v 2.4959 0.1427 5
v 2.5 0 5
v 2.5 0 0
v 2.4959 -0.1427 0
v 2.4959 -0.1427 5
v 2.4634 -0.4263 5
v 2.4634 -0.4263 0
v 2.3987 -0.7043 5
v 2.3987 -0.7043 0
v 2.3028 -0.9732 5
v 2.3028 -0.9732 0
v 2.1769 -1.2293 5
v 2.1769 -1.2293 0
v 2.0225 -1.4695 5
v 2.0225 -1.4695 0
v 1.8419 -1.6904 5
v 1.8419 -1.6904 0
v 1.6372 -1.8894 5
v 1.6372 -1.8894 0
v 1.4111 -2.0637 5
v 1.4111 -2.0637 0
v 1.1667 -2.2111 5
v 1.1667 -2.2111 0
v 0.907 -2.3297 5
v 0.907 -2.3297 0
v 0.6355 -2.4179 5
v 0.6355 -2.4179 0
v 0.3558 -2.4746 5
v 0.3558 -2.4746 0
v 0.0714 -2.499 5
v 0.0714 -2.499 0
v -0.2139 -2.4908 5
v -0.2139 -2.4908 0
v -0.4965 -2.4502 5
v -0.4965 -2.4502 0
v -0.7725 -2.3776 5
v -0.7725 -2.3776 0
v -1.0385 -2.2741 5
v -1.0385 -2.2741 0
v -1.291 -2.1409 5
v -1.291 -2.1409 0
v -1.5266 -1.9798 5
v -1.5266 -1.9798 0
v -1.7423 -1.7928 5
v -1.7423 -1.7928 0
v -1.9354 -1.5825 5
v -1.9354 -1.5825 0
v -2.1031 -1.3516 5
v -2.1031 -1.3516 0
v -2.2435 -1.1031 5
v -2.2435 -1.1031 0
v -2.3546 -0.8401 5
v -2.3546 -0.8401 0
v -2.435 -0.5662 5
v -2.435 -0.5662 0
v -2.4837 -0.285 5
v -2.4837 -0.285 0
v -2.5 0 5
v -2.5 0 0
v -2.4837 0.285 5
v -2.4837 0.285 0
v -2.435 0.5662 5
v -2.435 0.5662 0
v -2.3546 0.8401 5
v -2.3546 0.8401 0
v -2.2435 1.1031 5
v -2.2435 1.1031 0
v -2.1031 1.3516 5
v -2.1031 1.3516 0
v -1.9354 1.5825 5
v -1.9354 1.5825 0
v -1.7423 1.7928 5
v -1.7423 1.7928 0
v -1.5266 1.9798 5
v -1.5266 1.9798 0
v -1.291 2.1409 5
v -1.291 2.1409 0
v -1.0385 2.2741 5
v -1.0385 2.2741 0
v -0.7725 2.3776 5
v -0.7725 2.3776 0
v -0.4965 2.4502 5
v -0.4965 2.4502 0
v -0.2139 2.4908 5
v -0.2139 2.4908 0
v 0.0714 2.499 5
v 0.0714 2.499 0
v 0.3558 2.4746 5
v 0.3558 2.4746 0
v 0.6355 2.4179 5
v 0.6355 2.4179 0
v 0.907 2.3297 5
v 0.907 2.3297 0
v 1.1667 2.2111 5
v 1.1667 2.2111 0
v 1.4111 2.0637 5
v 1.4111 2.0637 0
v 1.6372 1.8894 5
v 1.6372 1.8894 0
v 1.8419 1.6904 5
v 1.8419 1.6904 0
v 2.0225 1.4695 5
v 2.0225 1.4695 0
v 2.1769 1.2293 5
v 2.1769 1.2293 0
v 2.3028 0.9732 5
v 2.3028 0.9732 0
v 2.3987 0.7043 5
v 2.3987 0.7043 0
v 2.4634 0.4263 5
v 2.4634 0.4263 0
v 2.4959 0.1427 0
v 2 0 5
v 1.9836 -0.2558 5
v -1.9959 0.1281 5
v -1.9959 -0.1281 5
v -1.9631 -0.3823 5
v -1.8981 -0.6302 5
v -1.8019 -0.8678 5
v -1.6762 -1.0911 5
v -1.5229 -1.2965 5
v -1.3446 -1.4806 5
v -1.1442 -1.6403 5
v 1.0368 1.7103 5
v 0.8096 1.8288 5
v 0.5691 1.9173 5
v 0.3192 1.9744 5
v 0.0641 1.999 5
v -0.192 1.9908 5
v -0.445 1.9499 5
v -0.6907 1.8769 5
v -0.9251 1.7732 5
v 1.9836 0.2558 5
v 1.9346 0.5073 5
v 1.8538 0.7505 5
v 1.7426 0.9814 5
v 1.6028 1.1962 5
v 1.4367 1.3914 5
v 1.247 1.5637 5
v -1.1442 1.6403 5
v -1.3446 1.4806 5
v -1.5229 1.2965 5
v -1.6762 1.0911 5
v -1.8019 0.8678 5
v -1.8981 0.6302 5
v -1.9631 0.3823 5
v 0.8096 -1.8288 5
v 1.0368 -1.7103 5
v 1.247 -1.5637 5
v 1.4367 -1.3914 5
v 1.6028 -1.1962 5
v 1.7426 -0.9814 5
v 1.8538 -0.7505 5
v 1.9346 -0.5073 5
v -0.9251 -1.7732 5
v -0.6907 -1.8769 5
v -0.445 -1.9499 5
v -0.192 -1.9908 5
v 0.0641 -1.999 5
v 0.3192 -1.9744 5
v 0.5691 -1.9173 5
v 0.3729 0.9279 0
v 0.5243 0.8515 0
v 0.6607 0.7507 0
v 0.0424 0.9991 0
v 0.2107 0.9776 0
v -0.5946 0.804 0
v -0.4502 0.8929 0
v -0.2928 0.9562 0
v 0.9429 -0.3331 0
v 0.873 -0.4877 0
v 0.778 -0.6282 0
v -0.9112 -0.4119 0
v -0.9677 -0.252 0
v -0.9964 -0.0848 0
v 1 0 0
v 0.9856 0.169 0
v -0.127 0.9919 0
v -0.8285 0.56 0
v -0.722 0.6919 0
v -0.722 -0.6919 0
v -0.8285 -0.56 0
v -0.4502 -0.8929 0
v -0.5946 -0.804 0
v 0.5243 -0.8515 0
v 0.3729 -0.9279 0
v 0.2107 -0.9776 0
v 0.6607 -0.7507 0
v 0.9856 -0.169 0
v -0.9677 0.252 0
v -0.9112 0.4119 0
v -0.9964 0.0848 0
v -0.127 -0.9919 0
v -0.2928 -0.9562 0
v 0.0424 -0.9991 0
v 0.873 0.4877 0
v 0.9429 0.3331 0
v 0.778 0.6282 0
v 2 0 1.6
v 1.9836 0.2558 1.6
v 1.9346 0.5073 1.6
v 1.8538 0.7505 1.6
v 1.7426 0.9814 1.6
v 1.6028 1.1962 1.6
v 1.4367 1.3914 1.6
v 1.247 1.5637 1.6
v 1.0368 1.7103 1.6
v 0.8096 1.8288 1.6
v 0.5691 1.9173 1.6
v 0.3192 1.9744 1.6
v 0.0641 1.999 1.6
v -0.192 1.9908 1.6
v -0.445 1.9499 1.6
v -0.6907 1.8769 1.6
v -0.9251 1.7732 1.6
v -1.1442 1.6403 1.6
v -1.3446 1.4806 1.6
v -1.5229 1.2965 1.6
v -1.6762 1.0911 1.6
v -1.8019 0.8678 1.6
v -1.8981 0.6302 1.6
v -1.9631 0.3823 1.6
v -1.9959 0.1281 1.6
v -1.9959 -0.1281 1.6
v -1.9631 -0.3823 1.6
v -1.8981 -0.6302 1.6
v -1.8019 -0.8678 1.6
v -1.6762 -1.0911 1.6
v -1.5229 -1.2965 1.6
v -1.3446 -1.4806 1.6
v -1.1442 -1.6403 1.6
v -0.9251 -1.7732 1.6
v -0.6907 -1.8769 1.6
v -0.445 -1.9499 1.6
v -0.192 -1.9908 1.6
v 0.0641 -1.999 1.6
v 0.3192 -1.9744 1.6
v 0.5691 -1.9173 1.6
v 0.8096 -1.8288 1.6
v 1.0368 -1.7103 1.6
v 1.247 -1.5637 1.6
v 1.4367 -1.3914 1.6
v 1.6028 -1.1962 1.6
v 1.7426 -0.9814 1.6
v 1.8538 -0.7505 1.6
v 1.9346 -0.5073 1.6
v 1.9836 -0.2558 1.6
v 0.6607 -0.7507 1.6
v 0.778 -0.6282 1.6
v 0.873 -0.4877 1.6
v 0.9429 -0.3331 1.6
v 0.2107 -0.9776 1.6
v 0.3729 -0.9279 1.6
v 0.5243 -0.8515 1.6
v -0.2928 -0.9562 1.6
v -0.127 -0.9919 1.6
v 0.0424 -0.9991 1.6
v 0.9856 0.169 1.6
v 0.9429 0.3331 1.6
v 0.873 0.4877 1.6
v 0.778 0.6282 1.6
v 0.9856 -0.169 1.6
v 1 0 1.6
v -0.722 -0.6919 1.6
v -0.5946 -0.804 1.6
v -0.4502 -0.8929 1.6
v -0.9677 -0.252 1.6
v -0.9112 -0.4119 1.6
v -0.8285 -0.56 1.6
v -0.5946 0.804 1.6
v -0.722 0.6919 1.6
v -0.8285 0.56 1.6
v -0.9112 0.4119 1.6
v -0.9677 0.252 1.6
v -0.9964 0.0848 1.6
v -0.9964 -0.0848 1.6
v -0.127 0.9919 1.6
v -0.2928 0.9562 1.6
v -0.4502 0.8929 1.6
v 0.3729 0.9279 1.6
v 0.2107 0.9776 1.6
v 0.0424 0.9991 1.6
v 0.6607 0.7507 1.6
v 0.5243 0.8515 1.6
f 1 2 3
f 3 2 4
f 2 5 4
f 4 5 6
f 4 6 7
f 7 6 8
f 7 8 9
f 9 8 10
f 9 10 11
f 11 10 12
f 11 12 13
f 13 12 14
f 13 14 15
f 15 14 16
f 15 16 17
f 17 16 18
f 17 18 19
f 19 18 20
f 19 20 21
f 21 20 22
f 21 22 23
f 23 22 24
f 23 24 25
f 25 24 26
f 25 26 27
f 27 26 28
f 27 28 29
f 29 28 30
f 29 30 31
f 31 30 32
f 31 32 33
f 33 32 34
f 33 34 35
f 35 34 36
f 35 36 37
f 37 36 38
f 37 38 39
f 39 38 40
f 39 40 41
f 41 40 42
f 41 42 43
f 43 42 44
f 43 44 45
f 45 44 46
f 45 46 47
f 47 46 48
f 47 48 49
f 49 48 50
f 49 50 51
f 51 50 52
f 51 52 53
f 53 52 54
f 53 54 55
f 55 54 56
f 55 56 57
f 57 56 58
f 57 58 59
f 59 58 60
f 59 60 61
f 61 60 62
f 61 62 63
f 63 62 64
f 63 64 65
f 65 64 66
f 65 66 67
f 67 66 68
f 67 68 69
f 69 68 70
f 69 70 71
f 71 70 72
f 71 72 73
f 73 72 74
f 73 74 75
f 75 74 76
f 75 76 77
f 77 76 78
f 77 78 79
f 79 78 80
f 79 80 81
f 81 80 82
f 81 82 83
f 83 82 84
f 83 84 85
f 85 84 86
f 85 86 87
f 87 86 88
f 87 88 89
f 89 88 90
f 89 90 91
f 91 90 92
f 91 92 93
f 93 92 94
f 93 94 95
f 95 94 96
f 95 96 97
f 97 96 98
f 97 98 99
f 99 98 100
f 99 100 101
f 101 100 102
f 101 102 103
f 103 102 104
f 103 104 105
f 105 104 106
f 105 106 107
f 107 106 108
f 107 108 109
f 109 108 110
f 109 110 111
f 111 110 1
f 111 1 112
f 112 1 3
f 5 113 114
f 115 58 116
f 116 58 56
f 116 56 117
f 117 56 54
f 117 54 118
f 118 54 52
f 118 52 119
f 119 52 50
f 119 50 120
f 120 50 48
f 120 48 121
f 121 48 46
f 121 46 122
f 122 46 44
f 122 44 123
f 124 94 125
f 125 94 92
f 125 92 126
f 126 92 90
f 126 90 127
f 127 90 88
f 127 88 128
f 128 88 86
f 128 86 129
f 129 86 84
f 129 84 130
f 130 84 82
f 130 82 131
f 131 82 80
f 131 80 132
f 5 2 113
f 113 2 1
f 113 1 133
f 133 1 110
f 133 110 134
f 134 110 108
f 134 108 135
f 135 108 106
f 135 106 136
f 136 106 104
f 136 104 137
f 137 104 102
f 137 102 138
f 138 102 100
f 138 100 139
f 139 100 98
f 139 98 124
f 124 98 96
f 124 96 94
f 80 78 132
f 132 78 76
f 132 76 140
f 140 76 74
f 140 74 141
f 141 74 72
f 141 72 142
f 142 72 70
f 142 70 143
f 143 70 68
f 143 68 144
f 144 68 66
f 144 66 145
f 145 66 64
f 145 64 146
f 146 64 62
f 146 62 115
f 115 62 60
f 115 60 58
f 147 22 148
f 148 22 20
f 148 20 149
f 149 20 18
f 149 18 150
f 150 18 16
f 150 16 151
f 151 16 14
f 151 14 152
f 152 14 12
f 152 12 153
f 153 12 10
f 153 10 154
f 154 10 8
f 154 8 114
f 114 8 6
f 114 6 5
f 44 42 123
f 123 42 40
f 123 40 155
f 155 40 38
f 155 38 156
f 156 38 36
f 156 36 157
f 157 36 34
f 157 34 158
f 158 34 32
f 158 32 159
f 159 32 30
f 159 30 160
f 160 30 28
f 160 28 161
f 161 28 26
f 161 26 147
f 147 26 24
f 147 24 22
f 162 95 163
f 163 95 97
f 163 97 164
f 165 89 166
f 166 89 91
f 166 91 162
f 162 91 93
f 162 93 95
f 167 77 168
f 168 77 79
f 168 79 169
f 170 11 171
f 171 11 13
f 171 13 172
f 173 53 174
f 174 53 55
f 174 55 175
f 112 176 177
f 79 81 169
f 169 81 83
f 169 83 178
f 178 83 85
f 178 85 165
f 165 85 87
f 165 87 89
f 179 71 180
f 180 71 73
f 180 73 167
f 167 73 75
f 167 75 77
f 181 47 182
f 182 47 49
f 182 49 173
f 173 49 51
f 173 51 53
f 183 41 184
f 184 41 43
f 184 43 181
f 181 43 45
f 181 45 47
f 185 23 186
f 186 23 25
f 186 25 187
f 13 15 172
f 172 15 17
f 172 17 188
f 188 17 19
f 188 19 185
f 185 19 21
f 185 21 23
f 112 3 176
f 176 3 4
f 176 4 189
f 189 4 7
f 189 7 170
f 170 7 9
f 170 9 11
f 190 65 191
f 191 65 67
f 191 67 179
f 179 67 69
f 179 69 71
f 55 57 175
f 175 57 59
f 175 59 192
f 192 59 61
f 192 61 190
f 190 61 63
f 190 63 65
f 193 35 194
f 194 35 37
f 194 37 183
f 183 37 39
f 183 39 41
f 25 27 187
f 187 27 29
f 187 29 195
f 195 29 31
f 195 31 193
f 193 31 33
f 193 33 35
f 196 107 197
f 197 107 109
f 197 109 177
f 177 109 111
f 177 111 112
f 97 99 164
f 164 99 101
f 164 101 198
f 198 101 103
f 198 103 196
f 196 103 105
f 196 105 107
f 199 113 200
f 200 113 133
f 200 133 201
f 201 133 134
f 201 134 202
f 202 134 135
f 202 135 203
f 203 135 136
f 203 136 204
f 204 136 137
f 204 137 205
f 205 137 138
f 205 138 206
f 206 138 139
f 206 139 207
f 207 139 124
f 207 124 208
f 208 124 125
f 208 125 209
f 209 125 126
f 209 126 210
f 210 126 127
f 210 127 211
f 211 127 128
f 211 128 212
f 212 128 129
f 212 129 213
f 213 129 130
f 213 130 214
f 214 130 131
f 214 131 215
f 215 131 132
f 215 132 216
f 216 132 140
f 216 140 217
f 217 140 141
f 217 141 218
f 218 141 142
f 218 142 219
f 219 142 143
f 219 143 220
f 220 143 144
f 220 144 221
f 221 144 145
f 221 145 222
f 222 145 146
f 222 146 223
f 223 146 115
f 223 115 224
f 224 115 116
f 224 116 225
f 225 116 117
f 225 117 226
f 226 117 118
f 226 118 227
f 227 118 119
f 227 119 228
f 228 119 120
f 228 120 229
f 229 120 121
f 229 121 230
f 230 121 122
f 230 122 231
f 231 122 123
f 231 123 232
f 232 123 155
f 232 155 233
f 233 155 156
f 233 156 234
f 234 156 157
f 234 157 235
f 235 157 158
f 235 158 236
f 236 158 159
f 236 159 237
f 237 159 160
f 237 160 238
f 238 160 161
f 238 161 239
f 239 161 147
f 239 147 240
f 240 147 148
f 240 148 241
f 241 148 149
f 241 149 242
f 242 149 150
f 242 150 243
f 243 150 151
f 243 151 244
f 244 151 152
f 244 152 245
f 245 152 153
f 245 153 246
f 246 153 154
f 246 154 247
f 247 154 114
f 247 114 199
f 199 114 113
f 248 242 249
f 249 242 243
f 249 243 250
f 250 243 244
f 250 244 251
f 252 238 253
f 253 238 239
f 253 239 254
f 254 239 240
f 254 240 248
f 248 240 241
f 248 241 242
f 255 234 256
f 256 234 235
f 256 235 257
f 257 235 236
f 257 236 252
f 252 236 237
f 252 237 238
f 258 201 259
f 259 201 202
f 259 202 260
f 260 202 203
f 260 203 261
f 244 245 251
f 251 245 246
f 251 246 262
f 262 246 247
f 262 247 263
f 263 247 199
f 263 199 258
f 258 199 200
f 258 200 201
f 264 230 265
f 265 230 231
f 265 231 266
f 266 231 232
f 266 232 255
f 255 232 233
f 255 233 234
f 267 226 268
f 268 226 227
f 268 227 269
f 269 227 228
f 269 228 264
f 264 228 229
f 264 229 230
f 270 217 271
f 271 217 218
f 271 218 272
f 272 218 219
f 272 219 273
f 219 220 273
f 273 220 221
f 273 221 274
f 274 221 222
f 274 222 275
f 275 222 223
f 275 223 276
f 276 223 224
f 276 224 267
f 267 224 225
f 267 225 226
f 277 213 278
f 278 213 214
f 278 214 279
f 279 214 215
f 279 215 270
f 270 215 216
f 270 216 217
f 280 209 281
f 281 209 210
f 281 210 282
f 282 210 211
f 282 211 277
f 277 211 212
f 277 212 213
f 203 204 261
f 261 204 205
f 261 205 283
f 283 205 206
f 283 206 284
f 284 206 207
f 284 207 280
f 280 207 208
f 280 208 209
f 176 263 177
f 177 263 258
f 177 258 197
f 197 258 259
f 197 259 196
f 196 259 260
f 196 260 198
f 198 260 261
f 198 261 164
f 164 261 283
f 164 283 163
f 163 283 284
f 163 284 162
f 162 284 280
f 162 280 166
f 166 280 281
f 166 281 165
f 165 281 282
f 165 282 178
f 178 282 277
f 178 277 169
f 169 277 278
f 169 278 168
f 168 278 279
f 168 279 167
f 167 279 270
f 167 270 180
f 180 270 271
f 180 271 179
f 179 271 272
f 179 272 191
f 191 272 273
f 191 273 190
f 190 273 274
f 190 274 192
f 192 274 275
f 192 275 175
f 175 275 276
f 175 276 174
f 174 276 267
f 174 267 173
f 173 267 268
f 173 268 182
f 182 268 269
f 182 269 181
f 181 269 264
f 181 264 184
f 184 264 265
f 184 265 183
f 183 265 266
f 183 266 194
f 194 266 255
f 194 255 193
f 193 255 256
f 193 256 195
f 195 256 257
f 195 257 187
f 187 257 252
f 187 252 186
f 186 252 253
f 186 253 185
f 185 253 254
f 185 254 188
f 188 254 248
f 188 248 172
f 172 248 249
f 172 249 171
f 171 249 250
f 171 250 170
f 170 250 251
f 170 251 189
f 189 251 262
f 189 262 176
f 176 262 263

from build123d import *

# Parameters (mm, degrees)
SKETCH_1_R          = 2
SKETCH_1_R_2        = 1
EXTRUDE_1_DEPTH     = 1.6
SKETCH_2_R          = 2.5
EXTRUDE_2_DEPTH     = 5
SKETCH_3_R          = 2
CUT_EXTRUDE_1_DEPTH = 3.4
SKETCH_4_R          = 1
CUT_EXTRUDE_2_DEPTH = 3.4


with BuildPart() as part:
    # 草图1 → 凸台-拉伸1 (new body)
    with BuildSketch(Plane.XY):
        Circle(SKETCH_1_R)
        Circle(SKETCH_1_R_2, mode=Mode.SUBTRACT)
    extrude(amount=EXTRUDE_1_DEPTH)

    # 草图2 → 凸台-拉伸2 (add)
    with BuildSketch(Plane.XY):
        Circle(SKETCH_2_R)
    extrude(amount=EXTRUDE_2_DEPTH)

    # 草图3 → 切除-拉伸1 (cut)
    with BuildSketch(Plane.XY.offset(5)):
        Circle(SKETCH_3_R)
    extrude(amount=-CUT_EXTRUDE_1_DEPTH, mode=Mode.SUBTRACT)

    # 草图4 → 切除-拉伸2 (cut)
    with BuildSketch(Plane.XY.offset(1.6)):
        Circle(SKETCH_4_R)
    extrude(amount=-CUT_EXTRUDE_2_DEPTH, mode=Mode.SUBTRACT)


solid = part.part
